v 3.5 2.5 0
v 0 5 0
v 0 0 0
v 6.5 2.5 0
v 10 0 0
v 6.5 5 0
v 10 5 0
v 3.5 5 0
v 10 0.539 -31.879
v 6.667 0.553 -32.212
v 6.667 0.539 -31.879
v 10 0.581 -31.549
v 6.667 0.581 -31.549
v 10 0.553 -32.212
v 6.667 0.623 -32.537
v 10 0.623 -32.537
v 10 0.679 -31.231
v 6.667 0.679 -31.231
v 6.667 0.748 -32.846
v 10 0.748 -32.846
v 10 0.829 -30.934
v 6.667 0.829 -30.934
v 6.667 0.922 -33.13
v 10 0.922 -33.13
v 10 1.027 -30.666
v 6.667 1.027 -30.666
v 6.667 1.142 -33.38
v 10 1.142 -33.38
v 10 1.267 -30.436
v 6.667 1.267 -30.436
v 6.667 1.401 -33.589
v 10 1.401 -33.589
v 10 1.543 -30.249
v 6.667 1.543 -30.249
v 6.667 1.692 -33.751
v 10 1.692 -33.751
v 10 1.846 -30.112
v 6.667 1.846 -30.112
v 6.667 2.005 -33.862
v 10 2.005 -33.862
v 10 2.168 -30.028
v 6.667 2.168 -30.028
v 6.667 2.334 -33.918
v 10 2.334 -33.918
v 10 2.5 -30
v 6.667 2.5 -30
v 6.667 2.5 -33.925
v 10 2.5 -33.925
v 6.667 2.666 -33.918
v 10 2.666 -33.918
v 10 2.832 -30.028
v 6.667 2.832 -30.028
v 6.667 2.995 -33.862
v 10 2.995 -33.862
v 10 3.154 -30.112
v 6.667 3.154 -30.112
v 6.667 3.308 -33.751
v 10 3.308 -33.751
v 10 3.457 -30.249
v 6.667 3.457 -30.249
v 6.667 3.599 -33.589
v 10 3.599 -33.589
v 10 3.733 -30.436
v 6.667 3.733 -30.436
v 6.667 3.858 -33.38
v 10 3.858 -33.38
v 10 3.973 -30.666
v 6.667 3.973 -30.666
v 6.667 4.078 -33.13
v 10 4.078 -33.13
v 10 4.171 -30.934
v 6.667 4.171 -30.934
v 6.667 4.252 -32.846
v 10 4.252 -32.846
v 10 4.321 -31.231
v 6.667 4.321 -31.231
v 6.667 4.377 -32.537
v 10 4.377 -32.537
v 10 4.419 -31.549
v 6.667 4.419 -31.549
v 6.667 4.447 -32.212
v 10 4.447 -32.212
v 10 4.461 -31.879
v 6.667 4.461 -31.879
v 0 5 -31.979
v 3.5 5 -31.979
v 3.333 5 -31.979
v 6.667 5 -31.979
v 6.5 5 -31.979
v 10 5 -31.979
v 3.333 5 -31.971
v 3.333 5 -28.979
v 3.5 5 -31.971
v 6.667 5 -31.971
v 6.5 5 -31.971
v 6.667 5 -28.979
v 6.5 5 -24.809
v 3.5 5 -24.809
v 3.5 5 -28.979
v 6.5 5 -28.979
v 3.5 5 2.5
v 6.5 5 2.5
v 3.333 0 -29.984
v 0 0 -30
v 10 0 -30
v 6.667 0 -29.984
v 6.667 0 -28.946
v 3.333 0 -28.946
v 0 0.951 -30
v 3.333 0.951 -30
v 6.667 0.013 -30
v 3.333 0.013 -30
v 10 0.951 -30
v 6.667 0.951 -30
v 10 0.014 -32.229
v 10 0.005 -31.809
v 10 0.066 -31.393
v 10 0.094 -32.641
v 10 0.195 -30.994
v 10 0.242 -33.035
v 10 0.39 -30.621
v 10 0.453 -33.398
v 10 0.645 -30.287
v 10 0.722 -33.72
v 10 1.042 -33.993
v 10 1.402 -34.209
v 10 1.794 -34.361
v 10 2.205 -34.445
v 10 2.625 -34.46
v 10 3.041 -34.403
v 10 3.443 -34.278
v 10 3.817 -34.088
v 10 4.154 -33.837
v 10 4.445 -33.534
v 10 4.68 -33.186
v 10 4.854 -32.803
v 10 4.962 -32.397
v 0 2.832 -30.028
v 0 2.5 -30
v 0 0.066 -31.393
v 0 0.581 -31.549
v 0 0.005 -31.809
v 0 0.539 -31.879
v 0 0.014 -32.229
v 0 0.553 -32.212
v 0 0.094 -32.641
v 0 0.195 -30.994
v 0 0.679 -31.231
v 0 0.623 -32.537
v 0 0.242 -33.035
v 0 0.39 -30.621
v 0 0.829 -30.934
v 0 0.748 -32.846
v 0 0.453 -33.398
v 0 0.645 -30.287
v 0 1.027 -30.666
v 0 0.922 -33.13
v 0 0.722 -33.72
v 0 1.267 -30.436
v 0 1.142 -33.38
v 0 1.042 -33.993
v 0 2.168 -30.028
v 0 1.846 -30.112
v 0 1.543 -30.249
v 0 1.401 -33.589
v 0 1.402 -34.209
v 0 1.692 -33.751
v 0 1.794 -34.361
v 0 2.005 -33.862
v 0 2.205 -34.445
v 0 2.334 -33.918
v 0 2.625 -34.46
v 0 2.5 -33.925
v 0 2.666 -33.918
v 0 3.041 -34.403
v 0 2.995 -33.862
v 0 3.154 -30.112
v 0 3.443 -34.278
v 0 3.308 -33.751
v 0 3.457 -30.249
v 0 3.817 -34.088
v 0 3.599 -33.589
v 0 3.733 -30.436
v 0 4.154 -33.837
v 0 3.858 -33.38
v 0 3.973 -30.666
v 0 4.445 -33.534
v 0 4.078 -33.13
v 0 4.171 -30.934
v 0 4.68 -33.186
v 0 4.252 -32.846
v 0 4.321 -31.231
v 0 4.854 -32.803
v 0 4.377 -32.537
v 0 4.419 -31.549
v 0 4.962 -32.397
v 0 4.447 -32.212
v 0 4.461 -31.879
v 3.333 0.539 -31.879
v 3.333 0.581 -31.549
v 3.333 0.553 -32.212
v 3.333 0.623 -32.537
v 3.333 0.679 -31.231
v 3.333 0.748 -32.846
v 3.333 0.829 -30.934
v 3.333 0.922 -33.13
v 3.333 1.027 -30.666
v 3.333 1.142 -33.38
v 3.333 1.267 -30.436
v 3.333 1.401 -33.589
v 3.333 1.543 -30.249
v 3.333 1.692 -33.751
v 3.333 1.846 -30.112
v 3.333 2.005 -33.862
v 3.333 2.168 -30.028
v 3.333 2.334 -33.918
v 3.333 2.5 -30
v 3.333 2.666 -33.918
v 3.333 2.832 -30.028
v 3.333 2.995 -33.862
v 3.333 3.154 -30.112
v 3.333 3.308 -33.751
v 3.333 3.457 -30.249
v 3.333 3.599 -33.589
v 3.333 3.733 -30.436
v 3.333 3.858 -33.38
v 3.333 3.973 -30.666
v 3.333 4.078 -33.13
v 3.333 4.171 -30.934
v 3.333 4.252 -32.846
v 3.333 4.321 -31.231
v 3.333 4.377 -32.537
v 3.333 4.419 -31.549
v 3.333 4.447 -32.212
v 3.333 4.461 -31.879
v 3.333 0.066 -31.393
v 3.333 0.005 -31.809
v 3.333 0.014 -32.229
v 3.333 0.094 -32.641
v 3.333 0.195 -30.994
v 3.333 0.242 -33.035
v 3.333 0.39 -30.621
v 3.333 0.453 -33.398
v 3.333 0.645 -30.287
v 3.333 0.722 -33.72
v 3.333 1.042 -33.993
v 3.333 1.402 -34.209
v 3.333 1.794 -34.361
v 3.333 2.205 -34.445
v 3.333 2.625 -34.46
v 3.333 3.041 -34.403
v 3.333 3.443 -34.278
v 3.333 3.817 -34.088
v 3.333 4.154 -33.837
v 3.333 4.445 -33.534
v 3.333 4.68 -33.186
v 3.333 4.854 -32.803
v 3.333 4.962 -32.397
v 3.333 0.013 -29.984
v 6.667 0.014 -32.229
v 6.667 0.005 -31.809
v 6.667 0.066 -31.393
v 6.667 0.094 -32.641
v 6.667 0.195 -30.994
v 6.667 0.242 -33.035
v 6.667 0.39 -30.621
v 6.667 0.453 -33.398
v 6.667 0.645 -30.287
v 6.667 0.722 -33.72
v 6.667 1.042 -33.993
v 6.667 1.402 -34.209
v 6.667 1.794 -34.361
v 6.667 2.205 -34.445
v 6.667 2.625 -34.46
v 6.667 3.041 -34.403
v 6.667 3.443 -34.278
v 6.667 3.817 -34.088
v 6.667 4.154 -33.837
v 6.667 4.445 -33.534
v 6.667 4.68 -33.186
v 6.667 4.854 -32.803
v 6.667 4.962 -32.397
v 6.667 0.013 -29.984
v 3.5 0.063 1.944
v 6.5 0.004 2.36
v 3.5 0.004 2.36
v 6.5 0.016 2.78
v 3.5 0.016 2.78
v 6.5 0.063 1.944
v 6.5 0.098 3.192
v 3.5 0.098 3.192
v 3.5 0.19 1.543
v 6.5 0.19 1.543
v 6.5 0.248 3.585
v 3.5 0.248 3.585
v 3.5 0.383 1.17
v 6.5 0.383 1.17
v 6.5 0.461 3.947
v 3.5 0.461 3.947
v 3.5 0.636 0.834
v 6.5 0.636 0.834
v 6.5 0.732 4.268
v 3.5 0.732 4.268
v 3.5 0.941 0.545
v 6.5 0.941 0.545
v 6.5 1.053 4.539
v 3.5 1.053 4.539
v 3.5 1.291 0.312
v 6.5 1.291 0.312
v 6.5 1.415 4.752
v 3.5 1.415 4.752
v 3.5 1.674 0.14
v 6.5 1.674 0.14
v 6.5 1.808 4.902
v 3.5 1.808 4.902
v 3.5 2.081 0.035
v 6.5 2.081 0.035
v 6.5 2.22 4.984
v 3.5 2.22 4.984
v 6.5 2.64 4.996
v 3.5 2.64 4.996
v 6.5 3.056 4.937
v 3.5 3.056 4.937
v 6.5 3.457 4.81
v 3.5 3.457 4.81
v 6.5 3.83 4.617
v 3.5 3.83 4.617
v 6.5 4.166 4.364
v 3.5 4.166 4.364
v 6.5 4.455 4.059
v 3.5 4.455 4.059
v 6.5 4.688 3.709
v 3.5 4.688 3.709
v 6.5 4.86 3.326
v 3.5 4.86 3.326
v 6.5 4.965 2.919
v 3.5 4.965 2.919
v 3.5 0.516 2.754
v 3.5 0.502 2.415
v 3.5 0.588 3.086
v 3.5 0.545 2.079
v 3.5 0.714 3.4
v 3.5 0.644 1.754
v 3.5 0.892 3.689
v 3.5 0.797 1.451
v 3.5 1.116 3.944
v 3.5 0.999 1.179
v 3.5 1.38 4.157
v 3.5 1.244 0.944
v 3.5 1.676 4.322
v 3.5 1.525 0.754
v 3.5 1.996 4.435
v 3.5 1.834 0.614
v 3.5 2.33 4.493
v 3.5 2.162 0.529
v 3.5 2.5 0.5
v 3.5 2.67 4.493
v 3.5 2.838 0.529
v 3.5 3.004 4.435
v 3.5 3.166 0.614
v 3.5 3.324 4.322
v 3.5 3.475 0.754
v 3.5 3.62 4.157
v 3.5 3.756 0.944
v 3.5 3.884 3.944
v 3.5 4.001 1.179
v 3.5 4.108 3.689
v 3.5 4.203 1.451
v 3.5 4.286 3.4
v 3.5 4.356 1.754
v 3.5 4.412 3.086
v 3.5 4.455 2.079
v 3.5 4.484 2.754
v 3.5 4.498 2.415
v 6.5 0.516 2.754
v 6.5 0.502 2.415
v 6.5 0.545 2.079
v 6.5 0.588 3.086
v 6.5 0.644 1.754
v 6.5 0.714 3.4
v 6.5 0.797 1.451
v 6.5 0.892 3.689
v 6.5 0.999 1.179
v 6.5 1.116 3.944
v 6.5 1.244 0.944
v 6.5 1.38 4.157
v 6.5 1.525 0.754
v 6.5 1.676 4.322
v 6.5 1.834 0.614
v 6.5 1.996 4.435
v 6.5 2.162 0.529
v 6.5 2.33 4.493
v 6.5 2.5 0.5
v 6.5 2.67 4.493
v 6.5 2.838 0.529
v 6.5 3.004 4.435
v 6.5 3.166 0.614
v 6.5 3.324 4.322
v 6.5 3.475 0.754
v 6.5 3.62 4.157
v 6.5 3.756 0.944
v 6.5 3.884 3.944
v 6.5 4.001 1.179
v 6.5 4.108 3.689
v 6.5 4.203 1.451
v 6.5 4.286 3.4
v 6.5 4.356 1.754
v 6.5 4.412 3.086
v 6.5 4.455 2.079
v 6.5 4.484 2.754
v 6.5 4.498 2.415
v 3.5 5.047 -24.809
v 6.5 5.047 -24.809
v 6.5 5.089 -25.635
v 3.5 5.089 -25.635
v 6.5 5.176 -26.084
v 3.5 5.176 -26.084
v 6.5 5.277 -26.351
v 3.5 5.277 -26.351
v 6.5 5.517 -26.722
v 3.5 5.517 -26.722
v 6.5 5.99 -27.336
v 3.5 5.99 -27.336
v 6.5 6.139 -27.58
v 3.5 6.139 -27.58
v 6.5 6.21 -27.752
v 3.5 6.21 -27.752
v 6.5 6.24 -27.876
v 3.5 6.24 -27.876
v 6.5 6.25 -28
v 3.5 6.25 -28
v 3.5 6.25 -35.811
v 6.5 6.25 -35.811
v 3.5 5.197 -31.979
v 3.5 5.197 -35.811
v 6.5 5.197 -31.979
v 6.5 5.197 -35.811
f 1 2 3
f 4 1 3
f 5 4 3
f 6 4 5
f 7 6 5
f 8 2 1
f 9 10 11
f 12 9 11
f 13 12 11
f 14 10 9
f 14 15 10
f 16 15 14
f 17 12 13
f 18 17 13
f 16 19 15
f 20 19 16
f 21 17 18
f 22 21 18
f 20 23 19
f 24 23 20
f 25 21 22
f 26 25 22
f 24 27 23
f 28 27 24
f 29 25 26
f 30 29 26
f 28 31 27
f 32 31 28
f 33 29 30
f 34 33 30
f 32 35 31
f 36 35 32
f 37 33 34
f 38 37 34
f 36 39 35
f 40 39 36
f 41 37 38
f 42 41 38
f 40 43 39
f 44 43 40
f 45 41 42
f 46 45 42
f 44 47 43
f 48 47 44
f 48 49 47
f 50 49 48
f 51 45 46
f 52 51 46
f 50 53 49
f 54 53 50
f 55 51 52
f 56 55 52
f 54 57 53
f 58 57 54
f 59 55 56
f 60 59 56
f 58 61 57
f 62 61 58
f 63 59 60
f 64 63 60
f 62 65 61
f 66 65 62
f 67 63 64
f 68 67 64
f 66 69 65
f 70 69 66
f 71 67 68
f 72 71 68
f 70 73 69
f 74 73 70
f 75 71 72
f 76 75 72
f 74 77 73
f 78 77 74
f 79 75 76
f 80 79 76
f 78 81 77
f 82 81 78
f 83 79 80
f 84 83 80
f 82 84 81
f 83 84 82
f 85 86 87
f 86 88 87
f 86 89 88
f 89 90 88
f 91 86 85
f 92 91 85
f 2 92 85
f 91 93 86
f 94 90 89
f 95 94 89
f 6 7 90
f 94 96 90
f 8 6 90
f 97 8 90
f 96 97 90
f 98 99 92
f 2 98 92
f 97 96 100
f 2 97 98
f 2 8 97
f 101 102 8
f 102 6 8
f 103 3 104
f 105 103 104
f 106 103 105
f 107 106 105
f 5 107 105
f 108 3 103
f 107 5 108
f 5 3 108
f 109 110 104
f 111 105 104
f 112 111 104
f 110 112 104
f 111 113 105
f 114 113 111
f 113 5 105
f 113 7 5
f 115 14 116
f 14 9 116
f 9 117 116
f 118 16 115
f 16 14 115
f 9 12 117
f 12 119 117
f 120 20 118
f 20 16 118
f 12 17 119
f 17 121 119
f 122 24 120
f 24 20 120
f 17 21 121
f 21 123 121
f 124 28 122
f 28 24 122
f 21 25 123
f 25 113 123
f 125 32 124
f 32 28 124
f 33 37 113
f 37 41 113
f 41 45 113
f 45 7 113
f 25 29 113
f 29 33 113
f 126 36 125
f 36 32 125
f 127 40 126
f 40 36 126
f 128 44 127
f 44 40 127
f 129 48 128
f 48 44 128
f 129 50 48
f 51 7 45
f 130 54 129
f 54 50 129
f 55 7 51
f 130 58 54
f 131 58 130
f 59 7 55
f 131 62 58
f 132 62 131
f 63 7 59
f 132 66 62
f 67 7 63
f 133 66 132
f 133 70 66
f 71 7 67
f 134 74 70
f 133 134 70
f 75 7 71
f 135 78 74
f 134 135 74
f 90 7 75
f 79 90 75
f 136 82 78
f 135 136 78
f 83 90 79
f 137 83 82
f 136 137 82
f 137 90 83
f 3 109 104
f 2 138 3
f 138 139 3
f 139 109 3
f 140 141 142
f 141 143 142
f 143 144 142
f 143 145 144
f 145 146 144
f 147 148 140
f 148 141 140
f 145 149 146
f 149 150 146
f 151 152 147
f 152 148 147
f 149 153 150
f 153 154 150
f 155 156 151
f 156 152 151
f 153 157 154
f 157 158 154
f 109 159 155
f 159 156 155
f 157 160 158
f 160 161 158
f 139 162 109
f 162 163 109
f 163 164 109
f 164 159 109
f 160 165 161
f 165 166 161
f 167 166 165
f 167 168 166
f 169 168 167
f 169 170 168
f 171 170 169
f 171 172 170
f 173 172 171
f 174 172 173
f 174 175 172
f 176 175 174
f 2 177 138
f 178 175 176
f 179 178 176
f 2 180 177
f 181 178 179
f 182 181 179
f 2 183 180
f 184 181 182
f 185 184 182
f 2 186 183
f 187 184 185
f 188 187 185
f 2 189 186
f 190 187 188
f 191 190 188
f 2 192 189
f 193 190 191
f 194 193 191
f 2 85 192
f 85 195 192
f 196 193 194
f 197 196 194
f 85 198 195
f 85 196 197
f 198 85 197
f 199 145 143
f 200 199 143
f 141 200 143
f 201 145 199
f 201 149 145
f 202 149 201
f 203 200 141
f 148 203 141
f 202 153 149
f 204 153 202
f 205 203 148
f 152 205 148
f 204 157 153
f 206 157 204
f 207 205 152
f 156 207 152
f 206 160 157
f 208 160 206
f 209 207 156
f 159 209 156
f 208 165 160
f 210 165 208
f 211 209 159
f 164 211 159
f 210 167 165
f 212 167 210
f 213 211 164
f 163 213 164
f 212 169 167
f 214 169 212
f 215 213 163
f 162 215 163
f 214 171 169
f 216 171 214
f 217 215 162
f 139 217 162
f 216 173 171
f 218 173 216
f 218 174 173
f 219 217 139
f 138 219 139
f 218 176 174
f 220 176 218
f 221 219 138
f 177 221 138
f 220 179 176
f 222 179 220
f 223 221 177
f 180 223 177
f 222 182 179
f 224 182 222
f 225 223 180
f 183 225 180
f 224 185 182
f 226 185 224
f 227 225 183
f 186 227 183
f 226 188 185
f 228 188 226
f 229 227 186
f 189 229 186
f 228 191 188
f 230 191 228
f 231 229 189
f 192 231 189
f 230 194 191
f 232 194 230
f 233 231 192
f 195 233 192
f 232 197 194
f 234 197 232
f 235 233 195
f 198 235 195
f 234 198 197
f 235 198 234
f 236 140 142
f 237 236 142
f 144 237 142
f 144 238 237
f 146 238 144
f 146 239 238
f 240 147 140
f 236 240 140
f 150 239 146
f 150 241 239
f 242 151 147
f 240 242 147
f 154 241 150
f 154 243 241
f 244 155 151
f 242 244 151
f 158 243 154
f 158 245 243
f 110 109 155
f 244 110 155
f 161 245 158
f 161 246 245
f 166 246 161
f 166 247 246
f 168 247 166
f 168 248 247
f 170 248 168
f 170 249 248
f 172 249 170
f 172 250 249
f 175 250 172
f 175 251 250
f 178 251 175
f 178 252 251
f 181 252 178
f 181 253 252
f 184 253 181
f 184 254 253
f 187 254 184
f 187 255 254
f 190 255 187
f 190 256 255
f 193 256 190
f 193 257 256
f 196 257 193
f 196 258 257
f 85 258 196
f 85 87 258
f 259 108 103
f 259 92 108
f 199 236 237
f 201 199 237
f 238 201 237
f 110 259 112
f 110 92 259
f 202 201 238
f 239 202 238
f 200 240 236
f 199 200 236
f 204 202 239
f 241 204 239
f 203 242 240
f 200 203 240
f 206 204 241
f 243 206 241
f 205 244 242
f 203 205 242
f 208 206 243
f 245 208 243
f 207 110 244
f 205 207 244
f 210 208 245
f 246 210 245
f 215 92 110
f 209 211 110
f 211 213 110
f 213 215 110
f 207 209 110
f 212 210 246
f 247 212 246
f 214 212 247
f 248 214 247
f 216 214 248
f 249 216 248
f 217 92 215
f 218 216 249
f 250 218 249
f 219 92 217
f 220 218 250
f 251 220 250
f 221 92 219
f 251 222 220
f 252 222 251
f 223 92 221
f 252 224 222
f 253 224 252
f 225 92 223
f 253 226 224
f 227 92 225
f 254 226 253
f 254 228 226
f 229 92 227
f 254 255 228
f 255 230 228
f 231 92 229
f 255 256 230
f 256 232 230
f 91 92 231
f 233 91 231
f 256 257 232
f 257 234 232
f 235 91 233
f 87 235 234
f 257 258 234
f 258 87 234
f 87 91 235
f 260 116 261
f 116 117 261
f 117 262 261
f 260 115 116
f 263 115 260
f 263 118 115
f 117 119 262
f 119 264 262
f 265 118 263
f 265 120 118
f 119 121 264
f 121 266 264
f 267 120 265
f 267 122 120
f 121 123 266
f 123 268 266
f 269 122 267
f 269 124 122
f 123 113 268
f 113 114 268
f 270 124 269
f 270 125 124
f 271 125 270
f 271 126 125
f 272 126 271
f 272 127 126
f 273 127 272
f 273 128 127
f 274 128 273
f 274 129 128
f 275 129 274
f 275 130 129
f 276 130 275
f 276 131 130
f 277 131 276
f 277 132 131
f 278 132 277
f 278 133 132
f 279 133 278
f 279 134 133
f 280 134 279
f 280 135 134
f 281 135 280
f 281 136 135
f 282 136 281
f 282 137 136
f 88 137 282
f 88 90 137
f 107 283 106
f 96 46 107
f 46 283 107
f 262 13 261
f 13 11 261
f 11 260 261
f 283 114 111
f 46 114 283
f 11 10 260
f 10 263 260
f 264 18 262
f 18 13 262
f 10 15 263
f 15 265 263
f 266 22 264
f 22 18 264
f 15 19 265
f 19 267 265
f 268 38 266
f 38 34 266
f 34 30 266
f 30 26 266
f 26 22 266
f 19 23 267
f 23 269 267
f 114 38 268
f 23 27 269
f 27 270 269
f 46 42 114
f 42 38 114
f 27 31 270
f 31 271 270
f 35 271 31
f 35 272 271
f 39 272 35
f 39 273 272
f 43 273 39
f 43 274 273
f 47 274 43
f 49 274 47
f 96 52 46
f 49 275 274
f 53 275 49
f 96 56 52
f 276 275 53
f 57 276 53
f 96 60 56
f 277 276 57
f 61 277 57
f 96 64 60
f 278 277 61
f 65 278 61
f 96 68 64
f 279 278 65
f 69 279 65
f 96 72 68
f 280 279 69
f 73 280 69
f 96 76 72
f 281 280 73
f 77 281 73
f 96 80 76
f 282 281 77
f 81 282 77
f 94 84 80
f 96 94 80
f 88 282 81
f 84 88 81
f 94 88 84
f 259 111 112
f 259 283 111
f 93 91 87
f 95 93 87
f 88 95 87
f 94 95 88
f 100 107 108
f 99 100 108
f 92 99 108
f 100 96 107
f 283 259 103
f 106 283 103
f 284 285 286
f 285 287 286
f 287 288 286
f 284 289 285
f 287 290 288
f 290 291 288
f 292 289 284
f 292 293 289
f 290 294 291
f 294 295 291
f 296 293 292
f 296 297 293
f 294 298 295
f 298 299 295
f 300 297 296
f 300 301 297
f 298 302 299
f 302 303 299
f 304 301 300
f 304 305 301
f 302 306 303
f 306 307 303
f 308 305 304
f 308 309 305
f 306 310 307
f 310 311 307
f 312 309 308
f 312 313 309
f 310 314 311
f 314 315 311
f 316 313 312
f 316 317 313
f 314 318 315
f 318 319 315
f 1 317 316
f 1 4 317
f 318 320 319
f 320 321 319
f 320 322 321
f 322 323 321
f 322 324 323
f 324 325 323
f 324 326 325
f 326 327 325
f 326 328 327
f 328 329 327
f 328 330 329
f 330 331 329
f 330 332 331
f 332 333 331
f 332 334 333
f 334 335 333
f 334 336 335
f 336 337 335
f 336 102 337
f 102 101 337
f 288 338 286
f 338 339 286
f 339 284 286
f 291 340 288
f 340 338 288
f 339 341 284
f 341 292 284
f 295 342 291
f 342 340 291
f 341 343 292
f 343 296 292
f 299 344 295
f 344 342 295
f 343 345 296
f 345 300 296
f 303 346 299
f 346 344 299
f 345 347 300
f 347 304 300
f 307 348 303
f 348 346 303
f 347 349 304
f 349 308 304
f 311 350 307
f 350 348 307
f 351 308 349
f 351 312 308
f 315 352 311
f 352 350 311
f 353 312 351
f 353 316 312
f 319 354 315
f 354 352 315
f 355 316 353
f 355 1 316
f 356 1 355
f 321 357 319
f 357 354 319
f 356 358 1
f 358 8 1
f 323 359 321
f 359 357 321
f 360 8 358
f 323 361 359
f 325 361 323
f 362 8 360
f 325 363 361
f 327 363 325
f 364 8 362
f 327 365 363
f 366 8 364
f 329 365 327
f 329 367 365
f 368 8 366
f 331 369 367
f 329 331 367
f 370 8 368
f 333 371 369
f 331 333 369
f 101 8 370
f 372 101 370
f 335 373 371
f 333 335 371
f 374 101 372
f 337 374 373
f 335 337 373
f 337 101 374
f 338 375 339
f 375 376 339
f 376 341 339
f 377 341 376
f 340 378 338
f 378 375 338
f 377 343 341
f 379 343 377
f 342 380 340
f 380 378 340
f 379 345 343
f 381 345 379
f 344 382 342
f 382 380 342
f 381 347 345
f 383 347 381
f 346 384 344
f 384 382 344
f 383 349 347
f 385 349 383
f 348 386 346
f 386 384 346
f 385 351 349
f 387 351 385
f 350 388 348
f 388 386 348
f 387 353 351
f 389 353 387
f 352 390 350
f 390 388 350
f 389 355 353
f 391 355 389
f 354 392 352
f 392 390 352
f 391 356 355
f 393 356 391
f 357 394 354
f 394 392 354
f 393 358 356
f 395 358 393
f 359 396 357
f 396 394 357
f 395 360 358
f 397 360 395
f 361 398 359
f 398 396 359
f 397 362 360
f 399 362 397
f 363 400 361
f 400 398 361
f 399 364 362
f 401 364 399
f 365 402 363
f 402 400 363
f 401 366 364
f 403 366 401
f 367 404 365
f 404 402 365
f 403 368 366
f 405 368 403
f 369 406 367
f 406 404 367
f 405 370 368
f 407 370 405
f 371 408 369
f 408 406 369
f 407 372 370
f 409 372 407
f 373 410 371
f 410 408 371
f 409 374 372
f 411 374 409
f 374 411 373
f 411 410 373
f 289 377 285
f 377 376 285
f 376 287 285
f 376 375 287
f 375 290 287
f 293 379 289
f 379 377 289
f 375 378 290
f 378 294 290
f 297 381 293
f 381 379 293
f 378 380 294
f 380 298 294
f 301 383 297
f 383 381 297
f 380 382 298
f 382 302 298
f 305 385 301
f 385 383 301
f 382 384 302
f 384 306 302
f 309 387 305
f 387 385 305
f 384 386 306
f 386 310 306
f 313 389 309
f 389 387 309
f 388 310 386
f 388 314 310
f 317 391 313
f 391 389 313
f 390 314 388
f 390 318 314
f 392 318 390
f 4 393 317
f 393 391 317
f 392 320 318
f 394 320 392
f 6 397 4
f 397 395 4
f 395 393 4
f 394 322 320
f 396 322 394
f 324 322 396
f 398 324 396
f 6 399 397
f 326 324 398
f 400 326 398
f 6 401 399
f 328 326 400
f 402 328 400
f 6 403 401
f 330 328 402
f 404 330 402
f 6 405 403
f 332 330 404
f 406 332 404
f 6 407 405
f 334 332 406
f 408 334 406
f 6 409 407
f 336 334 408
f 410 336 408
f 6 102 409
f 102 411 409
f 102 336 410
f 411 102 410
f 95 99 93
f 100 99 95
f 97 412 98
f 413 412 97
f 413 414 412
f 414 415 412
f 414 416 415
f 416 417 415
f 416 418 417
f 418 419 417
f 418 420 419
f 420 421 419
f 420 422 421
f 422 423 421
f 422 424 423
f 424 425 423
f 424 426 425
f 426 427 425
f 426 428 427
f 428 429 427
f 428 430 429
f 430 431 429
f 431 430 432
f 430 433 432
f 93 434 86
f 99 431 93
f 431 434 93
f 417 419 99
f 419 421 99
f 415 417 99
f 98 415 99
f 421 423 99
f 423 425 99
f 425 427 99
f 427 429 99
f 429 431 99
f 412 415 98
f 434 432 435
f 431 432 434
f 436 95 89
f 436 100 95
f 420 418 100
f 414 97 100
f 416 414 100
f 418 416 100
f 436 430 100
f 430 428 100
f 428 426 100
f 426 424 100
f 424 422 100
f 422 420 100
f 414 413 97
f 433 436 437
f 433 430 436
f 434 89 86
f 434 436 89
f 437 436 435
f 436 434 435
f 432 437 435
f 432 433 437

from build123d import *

# Parameters (mm, degrees)
BOSS_EXTRUDE1_DEPTH      = 10
SKETCH4_R                = 1.962636903
CUT_EXTRUDE2_DEPTH       = 10
SKETCH6_R                = 2.5
SKETCH6_R_2              = 1.962636903
BOSS_EXTRUDE2_DEPTH      = 3.333333333
BOSS_EXTRUDE3_START      = -3.333333333
SKETCH7_R                = 2.5
SKETCH7_R_2              = 1.962636903
BOSS_EXTRUDE3_DEPTH      = 3.333333333
SKETCH9_W                = 3.333333334
SKETCH9_H                = 5
CUT_EXTRUDE7_DEPTH       = 3
SKETCH10_W               = 3.333333334
SKETCH10_H               = 1.037363097
CUT_EXTRUDE8_DEPTH       = 37.201372358
BOSS_EXTRUDE4_DEPTH      = 1.5
BOSS_EXTRUDE4_DEPTH_BACK = 1.5
SKETCH12_R               = 2
BOSS_EXTRUDE9_DEPTH      = 1.5
BOSS_EXTRUDE9_DEPTH_BACK = 1.5
CUT_EXTRUDE9_DEPTH       = 40.05524944


with BuildPart() as part:
    # Sketch3 → Boss-Extrude1 (new body)
    with BuildSketch(Plane(origin=(0, 0, 0), x_dir=(0, 0, -1), z_dir=(1, 0, 0))):
        Polygon((0, 5), (0, 0), (30, 0), (30, 2.5), (31.962636903, 2.5), (31.97894003, 5), (30, 5), align=None)
    extrude(amount=BOSS_EXTRUDE1_DEPTH)

    # Sketch4 → Cut-Extrude2 (cut)
    with BuildSketch(Plane(origin=(0, 0, 0), x_dir=(0, 0, -1), z_dir=(1, 0, 0))):
        with Locations((31.962636903, 2.5)):
            Circle(SKETCH4_R)
    extrude(amount=CUT_EXTRUDE2_DEPTH, mode=Mode.SUBTRACT)

    # Sketch6 → Boss-Extrude2 (add)
    with BuildSketch(Plane.ZY):
        with Locations((-31.962636903, 2.5)):
            Circle(SKETCH6_R)
        with Locations((-31.962636903, 2.5)):
            Circle(SKETCH6_R_2, mode=Mode.SUBTRACT)
    extrude(amount=-BOSS_EXTRUDE2_DEPTH)

    # Sketch7 → Boss-Extrude3 (add)
    with BuildSketch(Plane(origin=(10, 0, 0), x_dir=(0, 0, -1), z_dir=(1, 0, 0)).offset(BOSS_EXTRUDE3_START)):
        with Locations((31.962636903, 2.5)):
            Circle(SKETCH7_R)
        with Locations((31.962636903, 2.5)):
            Circle(SKETCH7_R_2, mode=Mode.SUBTRACT)
    extrude(amount=BOSS_EXTRUDE3_DEPTH)

    # Sketch9 → Cut-Extrude7 (cut)
    with BuildSketch(Plane(origin=(0, -0.208321197, -31.944975261), x_dir=(-1, 0, 0), z_dir=(0, -0.006521112201233067, -0.9999787373217788))):
        with Locations((-5, 2.708378785)):
            Rectangle(SKETCH9_W, SKETCH9_H)
    extrude(amount=-CUT_EXTRUDE7_DEPTH, mode=Mode.SUBTRACT)

    # Sketch10 → Cut-Extrude8 (cut, through all)
    with BuildSketch(Plane(origin=(0, 0.208374354, -0.001358861), x_dir=(1, 0, 0), z_dir=(0, 0.9999787373217788, -0.00652111220123307))):
        with Locations((5, 29.464336059)):
            Rectangle(SKETCH10_W, SKETCH10_H)
    extrude(amount=-CUT_EXTRUDE8_DEPTH, mode=Mode.SUBTRACT)

    # Sketch12 → Boss-Extrude4 (add, two sides: drawn at the far end of the back side and taken through both)
    with BuildSketch(Plane(origin=(5, 0, 0), x_dir=(0, 0, -1), z_dir=(1, 0, 0)).offset(-BOSS_EXTRUDE4_DEPTH_BACK)):
        with BuildLine():
            Line((-2.5, 5), (0, 5))
            Line((0, 5), (0, 2.5))
            ThreePointArc((0, 2.5), (-4.267766953, 0.732233047), (-2.5, 5))
        make_face()
        with Locations((-2.5, 2.5)):
            Circle(SKETCH12_R, mode=Mode.SUBTRACT)
    extrude(amount=BOSS_EXTRUDE4_DEPTH + BOSS_EXTRUDE4_DEPTH_BACK)

    # Sketch13 → Boss-Extrude9 (add, two sides: drawn at the far end of the back side and taken through both)
    with BuildSketch(Plane(origin=(5, 0, 0), x_dir=(0, 0, -1), z_dir=(1, 0, 0)).offset(-BOSS_EXTRUDE9_DEPTH_BACK)):
        with BuildLine():
            Line((24.809137755, 5), (28, 5))
            Line((28, 5), (38, 5))
            Line((38, 5), (38, 6.25))
            Line((38, 6.25), (28, 6.25))
            add(Edge.make_bspline(
                [(28, 6.25), (27.570139782, 6.25), (27.108034748, 5.787413316), (26.444737385, 5.323894947), (26.11400028, 5.04700236), (24.809137755, 5.04700236)],
                knots=[0, 0, 0, 0, 0.435997525, 0.535997525, 1, 1, 1, 1], degree=3))
            Line((24.809137755, 5.04700236), (24.809137755, 5))
        make_face()
    extrude(amount=BOSS_EXTRUDE9_DEPTH + BOSS_EXTRUDE9_DEPTH_BACK)

    # Sketch14 → Cut-Extrude9 (cut, through all)
    with BuildSketch(Plane(origin=(6.5, 0, 0), x_dir=(0, 0, -1), z_dir=(1, 0, 0))):
        Polygon((31.97894003, 5), (31.97894003, 5.19699687), (35.810977428, 5.19699687), (35.810977428, 6.25), (38, 6.25), (38, 5.19699687), (38, 5), align=None)
    extrude(amount=-CUT_EXTRUDE9_DEPTH, mode=Mode.SUBTRACT)


solid = part.part
